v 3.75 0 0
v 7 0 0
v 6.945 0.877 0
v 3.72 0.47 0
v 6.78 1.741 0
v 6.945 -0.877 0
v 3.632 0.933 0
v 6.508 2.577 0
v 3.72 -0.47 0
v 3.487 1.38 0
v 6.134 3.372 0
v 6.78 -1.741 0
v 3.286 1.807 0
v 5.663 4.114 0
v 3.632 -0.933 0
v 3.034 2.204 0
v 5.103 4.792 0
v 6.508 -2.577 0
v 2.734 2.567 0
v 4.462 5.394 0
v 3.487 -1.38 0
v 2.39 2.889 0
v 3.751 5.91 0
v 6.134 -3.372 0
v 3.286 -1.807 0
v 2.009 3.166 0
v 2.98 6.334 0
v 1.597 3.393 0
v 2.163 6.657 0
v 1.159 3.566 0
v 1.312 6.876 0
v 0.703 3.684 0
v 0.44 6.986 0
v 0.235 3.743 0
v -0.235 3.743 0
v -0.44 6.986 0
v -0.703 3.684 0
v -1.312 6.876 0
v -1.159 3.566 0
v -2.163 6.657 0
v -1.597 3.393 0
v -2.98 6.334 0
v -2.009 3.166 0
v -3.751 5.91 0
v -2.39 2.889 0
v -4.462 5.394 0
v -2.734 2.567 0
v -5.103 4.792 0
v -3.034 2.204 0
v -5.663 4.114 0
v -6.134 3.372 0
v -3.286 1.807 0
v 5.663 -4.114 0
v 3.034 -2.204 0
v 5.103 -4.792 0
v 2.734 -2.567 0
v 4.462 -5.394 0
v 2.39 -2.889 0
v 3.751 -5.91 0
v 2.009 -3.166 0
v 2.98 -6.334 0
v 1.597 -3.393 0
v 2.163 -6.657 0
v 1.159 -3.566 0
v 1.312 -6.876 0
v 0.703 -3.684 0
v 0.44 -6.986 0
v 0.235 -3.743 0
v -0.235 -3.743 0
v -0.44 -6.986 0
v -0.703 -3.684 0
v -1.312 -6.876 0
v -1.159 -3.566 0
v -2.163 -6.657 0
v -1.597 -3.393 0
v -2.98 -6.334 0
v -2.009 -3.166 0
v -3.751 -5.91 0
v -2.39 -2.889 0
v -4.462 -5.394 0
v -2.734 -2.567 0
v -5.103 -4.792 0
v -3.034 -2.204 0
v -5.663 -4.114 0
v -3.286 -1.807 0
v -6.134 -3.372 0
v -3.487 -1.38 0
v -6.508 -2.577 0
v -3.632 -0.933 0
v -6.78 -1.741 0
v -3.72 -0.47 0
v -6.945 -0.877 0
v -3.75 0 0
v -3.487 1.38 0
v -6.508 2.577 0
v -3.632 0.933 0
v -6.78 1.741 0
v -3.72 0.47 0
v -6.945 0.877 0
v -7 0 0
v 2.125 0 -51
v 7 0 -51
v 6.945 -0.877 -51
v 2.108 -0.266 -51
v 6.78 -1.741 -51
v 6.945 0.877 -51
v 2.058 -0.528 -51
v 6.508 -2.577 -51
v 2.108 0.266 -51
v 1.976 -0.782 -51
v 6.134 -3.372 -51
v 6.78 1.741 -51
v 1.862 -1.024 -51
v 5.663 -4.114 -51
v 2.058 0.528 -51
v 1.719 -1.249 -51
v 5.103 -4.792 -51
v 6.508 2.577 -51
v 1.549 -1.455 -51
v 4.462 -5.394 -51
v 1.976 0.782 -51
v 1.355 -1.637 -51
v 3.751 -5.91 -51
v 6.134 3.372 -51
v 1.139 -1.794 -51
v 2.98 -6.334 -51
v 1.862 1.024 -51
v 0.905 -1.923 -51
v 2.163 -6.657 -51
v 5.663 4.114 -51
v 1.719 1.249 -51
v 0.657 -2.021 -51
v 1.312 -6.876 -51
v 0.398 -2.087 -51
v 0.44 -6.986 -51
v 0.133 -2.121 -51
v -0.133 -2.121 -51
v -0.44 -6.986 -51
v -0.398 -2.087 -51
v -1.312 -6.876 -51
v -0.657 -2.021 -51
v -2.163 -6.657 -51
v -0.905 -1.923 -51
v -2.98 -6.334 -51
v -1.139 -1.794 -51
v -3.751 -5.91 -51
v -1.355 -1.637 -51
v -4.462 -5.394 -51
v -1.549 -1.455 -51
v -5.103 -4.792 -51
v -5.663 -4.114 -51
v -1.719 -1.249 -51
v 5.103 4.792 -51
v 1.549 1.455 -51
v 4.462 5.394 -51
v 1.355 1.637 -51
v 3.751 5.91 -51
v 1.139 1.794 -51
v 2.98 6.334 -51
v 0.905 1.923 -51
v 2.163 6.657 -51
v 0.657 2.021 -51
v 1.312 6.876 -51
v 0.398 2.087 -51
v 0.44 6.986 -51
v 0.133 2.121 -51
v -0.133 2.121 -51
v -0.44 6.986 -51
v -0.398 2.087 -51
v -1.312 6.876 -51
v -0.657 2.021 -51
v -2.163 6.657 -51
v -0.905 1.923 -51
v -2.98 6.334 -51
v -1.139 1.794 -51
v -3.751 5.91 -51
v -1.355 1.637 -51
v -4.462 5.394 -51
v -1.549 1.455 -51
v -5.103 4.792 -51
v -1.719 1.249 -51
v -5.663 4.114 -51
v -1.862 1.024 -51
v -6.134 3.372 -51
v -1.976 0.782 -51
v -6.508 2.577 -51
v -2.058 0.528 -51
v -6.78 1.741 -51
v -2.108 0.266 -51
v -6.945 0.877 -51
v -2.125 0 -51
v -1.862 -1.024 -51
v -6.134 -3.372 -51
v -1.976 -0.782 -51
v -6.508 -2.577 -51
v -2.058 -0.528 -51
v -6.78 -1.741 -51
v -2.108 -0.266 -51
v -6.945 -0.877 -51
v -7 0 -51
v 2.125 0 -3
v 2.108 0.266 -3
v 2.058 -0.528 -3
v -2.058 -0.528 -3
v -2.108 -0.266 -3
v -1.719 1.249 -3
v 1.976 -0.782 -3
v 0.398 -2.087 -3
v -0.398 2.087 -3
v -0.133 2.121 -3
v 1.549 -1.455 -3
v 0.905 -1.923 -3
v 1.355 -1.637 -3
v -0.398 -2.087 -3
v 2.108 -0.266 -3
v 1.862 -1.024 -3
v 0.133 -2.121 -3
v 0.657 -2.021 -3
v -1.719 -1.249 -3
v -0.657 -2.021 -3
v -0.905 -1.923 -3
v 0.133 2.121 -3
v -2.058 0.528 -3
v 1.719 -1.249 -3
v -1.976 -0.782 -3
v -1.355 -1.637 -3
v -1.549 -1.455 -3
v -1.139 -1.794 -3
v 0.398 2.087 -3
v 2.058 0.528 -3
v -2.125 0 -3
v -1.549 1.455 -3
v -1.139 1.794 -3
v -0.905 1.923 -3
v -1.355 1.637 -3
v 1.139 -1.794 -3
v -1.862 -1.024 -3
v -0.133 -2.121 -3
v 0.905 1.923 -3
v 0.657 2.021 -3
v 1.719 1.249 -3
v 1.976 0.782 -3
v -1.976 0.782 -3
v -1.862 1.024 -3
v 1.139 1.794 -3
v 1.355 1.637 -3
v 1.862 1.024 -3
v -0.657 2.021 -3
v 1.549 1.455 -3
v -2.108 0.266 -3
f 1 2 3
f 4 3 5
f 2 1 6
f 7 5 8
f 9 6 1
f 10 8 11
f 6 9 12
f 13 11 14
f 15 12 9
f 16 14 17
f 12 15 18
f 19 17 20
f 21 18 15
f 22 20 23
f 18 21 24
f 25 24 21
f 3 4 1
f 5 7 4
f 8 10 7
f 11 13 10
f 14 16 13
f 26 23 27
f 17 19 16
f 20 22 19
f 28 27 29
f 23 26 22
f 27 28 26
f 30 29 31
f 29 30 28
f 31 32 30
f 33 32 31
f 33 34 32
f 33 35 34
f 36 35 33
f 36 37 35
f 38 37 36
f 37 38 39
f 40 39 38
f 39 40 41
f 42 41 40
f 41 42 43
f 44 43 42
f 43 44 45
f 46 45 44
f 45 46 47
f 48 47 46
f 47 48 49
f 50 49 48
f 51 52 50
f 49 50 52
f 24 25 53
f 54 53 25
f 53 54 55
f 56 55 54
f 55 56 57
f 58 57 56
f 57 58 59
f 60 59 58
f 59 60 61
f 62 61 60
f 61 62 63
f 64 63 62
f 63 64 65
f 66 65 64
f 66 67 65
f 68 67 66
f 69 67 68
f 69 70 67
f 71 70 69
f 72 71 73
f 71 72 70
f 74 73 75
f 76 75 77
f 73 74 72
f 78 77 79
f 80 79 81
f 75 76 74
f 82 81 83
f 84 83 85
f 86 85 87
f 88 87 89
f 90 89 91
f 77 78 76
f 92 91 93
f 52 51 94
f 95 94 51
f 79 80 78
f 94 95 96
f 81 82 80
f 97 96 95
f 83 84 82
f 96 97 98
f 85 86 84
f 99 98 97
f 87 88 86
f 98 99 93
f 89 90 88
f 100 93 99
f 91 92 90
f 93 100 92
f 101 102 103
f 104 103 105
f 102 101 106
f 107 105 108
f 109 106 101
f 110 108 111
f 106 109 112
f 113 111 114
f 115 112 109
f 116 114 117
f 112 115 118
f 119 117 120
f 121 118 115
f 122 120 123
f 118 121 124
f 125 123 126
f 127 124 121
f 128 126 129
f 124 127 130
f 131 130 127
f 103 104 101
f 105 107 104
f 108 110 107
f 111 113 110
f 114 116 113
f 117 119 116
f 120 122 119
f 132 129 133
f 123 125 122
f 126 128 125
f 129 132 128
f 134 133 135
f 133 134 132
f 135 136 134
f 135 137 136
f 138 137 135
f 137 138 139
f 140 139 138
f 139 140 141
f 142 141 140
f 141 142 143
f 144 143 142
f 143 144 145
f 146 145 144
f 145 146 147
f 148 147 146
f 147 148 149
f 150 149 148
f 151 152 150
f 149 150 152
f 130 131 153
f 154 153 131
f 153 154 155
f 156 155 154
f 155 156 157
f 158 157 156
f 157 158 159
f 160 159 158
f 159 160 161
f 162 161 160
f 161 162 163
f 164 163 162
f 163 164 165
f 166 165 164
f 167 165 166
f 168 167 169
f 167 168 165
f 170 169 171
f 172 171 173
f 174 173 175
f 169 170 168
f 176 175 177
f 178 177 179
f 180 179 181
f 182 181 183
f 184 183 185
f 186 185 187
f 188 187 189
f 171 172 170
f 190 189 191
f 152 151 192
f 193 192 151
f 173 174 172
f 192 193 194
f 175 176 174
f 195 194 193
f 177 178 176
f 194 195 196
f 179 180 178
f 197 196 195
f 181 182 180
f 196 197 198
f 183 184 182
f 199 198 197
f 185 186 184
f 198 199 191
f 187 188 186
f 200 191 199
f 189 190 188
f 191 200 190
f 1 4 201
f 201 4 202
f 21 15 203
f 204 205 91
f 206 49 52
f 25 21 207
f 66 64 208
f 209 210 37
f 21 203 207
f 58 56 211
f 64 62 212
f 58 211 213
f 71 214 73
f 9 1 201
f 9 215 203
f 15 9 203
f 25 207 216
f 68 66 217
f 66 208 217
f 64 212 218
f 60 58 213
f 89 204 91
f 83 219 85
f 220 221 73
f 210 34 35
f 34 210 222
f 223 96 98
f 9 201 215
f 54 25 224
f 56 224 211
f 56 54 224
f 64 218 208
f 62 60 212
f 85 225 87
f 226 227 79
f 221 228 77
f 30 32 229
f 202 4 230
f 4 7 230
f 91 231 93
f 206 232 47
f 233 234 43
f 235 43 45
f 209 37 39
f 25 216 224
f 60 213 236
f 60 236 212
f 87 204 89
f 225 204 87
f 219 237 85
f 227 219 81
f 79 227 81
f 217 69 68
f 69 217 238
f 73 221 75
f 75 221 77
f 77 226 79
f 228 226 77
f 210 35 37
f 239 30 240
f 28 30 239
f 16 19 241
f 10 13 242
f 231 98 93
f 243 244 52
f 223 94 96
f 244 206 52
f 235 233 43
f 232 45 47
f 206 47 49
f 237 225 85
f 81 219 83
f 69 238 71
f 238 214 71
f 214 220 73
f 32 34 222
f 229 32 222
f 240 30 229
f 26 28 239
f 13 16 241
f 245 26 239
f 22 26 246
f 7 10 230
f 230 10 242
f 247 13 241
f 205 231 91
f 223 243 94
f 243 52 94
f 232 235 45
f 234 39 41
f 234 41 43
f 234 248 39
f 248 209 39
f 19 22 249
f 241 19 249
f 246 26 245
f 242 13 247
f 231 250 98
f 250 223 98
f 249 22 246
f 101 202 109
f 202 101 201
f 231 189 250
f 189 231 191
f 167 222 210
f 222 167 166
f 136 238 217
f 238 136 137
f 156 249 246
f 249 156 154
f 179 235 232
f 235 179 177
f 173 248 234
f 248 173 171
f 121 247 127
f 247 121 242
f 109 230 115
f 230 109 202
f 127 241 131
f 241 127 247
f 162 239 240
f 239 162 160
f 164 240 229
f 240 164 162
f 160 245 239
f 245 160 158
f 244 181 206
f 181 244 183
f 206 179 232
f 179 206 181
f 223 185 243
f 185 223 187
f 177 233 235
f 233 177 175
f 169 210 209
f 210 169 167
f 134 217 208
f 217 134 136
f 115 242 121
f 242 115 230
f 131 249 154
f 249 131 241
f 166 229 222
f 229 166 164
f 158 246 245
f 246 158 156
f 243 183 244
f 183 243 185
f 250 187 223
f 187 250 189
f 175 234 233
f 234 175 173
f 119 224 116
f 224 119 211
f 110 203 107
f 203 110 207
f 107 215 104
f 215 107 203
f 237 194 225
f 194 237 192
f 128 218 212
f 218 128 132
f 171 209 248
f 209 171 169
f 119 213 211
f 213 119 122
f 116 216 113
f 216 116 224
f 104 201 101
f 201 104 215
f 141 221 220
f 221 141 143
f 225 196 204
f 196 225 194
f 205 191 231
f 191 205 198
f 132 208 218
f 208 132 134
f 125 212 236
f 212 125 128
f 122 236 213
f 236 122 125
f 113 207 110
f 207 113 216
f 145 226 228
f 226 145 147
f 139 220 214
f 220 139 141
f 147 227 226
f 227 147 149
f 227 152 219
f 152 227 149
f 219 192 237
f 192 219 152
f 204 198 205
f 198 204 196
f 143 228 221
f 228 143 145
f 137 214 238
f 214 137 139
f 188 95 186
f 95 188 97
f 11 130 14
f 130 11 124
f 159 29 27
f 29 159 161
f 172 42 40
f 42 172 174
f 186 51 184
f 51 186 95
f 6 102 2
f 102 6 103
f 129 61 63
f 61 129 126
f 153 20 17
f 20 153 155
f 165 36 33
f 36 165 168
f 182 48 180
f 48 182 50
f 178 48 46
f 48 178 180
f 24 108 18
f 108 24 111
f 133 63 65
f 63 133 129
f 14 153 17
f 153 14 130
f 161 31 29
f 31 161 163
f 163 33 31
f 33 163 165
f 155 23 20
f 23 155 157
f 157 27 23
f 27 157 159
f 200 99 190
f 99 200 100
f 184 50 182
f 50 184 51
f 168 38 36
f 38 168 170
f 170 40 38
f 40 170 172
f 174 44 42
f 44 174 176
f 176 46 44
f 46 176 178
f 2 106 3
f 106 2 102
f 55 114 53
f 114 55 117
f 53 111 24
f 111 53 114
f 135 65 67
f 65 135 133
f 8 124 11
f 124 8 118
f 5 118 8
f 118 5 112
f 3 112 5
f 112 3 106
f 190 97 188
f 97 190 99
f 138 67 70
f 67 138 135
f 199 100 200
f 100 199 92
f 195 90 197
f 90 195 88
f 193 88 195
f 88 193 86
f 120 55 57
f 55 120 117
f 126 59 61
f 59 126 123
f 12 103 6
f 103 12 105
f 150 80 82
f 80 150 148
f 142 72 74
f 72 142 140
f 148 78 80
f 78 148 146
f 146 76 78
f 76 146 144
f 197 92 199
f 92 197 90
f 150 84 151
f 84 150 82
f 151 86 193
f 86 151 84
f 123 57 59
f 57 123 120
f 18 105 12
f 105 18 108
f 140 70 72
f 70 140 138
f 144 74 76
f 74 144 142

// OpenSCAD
$fn = 50;


difference() {
	union() {
		translate(v = [0, 0, -51.0000000000]) {
			cylinder(h = 51, r = 7.0000000000);
		}
		cylinder(h = 0, r = 17.0000000000);
	}
	union() {
		translate(v = [0, 0, 0]) {
			rotate(a = [0, 0, 0]) {
				difference() {
					union() {
						#translate(v = [0, 0, -51.0000000000]) {
							cylinder(h = 51, r = 2.0000000000);
						}
						#translate(v = [0, 0, -3]) {
							cylinder(h = 3, r = 7.0000000000, r1 = 2.1250000000, r2 = 3.7500000000);
						}
						#translate(v = [0, 0, -51.0000000000]) {
							cylinder(h = 51, r = 2.1250000000);
						}
						#translate(v = [0, 0, -51.0000000000]) {
							cylinder(h = 51, r = 2.0000000000);
						}
					}
					union();
				}
			}
		}
	}
}
